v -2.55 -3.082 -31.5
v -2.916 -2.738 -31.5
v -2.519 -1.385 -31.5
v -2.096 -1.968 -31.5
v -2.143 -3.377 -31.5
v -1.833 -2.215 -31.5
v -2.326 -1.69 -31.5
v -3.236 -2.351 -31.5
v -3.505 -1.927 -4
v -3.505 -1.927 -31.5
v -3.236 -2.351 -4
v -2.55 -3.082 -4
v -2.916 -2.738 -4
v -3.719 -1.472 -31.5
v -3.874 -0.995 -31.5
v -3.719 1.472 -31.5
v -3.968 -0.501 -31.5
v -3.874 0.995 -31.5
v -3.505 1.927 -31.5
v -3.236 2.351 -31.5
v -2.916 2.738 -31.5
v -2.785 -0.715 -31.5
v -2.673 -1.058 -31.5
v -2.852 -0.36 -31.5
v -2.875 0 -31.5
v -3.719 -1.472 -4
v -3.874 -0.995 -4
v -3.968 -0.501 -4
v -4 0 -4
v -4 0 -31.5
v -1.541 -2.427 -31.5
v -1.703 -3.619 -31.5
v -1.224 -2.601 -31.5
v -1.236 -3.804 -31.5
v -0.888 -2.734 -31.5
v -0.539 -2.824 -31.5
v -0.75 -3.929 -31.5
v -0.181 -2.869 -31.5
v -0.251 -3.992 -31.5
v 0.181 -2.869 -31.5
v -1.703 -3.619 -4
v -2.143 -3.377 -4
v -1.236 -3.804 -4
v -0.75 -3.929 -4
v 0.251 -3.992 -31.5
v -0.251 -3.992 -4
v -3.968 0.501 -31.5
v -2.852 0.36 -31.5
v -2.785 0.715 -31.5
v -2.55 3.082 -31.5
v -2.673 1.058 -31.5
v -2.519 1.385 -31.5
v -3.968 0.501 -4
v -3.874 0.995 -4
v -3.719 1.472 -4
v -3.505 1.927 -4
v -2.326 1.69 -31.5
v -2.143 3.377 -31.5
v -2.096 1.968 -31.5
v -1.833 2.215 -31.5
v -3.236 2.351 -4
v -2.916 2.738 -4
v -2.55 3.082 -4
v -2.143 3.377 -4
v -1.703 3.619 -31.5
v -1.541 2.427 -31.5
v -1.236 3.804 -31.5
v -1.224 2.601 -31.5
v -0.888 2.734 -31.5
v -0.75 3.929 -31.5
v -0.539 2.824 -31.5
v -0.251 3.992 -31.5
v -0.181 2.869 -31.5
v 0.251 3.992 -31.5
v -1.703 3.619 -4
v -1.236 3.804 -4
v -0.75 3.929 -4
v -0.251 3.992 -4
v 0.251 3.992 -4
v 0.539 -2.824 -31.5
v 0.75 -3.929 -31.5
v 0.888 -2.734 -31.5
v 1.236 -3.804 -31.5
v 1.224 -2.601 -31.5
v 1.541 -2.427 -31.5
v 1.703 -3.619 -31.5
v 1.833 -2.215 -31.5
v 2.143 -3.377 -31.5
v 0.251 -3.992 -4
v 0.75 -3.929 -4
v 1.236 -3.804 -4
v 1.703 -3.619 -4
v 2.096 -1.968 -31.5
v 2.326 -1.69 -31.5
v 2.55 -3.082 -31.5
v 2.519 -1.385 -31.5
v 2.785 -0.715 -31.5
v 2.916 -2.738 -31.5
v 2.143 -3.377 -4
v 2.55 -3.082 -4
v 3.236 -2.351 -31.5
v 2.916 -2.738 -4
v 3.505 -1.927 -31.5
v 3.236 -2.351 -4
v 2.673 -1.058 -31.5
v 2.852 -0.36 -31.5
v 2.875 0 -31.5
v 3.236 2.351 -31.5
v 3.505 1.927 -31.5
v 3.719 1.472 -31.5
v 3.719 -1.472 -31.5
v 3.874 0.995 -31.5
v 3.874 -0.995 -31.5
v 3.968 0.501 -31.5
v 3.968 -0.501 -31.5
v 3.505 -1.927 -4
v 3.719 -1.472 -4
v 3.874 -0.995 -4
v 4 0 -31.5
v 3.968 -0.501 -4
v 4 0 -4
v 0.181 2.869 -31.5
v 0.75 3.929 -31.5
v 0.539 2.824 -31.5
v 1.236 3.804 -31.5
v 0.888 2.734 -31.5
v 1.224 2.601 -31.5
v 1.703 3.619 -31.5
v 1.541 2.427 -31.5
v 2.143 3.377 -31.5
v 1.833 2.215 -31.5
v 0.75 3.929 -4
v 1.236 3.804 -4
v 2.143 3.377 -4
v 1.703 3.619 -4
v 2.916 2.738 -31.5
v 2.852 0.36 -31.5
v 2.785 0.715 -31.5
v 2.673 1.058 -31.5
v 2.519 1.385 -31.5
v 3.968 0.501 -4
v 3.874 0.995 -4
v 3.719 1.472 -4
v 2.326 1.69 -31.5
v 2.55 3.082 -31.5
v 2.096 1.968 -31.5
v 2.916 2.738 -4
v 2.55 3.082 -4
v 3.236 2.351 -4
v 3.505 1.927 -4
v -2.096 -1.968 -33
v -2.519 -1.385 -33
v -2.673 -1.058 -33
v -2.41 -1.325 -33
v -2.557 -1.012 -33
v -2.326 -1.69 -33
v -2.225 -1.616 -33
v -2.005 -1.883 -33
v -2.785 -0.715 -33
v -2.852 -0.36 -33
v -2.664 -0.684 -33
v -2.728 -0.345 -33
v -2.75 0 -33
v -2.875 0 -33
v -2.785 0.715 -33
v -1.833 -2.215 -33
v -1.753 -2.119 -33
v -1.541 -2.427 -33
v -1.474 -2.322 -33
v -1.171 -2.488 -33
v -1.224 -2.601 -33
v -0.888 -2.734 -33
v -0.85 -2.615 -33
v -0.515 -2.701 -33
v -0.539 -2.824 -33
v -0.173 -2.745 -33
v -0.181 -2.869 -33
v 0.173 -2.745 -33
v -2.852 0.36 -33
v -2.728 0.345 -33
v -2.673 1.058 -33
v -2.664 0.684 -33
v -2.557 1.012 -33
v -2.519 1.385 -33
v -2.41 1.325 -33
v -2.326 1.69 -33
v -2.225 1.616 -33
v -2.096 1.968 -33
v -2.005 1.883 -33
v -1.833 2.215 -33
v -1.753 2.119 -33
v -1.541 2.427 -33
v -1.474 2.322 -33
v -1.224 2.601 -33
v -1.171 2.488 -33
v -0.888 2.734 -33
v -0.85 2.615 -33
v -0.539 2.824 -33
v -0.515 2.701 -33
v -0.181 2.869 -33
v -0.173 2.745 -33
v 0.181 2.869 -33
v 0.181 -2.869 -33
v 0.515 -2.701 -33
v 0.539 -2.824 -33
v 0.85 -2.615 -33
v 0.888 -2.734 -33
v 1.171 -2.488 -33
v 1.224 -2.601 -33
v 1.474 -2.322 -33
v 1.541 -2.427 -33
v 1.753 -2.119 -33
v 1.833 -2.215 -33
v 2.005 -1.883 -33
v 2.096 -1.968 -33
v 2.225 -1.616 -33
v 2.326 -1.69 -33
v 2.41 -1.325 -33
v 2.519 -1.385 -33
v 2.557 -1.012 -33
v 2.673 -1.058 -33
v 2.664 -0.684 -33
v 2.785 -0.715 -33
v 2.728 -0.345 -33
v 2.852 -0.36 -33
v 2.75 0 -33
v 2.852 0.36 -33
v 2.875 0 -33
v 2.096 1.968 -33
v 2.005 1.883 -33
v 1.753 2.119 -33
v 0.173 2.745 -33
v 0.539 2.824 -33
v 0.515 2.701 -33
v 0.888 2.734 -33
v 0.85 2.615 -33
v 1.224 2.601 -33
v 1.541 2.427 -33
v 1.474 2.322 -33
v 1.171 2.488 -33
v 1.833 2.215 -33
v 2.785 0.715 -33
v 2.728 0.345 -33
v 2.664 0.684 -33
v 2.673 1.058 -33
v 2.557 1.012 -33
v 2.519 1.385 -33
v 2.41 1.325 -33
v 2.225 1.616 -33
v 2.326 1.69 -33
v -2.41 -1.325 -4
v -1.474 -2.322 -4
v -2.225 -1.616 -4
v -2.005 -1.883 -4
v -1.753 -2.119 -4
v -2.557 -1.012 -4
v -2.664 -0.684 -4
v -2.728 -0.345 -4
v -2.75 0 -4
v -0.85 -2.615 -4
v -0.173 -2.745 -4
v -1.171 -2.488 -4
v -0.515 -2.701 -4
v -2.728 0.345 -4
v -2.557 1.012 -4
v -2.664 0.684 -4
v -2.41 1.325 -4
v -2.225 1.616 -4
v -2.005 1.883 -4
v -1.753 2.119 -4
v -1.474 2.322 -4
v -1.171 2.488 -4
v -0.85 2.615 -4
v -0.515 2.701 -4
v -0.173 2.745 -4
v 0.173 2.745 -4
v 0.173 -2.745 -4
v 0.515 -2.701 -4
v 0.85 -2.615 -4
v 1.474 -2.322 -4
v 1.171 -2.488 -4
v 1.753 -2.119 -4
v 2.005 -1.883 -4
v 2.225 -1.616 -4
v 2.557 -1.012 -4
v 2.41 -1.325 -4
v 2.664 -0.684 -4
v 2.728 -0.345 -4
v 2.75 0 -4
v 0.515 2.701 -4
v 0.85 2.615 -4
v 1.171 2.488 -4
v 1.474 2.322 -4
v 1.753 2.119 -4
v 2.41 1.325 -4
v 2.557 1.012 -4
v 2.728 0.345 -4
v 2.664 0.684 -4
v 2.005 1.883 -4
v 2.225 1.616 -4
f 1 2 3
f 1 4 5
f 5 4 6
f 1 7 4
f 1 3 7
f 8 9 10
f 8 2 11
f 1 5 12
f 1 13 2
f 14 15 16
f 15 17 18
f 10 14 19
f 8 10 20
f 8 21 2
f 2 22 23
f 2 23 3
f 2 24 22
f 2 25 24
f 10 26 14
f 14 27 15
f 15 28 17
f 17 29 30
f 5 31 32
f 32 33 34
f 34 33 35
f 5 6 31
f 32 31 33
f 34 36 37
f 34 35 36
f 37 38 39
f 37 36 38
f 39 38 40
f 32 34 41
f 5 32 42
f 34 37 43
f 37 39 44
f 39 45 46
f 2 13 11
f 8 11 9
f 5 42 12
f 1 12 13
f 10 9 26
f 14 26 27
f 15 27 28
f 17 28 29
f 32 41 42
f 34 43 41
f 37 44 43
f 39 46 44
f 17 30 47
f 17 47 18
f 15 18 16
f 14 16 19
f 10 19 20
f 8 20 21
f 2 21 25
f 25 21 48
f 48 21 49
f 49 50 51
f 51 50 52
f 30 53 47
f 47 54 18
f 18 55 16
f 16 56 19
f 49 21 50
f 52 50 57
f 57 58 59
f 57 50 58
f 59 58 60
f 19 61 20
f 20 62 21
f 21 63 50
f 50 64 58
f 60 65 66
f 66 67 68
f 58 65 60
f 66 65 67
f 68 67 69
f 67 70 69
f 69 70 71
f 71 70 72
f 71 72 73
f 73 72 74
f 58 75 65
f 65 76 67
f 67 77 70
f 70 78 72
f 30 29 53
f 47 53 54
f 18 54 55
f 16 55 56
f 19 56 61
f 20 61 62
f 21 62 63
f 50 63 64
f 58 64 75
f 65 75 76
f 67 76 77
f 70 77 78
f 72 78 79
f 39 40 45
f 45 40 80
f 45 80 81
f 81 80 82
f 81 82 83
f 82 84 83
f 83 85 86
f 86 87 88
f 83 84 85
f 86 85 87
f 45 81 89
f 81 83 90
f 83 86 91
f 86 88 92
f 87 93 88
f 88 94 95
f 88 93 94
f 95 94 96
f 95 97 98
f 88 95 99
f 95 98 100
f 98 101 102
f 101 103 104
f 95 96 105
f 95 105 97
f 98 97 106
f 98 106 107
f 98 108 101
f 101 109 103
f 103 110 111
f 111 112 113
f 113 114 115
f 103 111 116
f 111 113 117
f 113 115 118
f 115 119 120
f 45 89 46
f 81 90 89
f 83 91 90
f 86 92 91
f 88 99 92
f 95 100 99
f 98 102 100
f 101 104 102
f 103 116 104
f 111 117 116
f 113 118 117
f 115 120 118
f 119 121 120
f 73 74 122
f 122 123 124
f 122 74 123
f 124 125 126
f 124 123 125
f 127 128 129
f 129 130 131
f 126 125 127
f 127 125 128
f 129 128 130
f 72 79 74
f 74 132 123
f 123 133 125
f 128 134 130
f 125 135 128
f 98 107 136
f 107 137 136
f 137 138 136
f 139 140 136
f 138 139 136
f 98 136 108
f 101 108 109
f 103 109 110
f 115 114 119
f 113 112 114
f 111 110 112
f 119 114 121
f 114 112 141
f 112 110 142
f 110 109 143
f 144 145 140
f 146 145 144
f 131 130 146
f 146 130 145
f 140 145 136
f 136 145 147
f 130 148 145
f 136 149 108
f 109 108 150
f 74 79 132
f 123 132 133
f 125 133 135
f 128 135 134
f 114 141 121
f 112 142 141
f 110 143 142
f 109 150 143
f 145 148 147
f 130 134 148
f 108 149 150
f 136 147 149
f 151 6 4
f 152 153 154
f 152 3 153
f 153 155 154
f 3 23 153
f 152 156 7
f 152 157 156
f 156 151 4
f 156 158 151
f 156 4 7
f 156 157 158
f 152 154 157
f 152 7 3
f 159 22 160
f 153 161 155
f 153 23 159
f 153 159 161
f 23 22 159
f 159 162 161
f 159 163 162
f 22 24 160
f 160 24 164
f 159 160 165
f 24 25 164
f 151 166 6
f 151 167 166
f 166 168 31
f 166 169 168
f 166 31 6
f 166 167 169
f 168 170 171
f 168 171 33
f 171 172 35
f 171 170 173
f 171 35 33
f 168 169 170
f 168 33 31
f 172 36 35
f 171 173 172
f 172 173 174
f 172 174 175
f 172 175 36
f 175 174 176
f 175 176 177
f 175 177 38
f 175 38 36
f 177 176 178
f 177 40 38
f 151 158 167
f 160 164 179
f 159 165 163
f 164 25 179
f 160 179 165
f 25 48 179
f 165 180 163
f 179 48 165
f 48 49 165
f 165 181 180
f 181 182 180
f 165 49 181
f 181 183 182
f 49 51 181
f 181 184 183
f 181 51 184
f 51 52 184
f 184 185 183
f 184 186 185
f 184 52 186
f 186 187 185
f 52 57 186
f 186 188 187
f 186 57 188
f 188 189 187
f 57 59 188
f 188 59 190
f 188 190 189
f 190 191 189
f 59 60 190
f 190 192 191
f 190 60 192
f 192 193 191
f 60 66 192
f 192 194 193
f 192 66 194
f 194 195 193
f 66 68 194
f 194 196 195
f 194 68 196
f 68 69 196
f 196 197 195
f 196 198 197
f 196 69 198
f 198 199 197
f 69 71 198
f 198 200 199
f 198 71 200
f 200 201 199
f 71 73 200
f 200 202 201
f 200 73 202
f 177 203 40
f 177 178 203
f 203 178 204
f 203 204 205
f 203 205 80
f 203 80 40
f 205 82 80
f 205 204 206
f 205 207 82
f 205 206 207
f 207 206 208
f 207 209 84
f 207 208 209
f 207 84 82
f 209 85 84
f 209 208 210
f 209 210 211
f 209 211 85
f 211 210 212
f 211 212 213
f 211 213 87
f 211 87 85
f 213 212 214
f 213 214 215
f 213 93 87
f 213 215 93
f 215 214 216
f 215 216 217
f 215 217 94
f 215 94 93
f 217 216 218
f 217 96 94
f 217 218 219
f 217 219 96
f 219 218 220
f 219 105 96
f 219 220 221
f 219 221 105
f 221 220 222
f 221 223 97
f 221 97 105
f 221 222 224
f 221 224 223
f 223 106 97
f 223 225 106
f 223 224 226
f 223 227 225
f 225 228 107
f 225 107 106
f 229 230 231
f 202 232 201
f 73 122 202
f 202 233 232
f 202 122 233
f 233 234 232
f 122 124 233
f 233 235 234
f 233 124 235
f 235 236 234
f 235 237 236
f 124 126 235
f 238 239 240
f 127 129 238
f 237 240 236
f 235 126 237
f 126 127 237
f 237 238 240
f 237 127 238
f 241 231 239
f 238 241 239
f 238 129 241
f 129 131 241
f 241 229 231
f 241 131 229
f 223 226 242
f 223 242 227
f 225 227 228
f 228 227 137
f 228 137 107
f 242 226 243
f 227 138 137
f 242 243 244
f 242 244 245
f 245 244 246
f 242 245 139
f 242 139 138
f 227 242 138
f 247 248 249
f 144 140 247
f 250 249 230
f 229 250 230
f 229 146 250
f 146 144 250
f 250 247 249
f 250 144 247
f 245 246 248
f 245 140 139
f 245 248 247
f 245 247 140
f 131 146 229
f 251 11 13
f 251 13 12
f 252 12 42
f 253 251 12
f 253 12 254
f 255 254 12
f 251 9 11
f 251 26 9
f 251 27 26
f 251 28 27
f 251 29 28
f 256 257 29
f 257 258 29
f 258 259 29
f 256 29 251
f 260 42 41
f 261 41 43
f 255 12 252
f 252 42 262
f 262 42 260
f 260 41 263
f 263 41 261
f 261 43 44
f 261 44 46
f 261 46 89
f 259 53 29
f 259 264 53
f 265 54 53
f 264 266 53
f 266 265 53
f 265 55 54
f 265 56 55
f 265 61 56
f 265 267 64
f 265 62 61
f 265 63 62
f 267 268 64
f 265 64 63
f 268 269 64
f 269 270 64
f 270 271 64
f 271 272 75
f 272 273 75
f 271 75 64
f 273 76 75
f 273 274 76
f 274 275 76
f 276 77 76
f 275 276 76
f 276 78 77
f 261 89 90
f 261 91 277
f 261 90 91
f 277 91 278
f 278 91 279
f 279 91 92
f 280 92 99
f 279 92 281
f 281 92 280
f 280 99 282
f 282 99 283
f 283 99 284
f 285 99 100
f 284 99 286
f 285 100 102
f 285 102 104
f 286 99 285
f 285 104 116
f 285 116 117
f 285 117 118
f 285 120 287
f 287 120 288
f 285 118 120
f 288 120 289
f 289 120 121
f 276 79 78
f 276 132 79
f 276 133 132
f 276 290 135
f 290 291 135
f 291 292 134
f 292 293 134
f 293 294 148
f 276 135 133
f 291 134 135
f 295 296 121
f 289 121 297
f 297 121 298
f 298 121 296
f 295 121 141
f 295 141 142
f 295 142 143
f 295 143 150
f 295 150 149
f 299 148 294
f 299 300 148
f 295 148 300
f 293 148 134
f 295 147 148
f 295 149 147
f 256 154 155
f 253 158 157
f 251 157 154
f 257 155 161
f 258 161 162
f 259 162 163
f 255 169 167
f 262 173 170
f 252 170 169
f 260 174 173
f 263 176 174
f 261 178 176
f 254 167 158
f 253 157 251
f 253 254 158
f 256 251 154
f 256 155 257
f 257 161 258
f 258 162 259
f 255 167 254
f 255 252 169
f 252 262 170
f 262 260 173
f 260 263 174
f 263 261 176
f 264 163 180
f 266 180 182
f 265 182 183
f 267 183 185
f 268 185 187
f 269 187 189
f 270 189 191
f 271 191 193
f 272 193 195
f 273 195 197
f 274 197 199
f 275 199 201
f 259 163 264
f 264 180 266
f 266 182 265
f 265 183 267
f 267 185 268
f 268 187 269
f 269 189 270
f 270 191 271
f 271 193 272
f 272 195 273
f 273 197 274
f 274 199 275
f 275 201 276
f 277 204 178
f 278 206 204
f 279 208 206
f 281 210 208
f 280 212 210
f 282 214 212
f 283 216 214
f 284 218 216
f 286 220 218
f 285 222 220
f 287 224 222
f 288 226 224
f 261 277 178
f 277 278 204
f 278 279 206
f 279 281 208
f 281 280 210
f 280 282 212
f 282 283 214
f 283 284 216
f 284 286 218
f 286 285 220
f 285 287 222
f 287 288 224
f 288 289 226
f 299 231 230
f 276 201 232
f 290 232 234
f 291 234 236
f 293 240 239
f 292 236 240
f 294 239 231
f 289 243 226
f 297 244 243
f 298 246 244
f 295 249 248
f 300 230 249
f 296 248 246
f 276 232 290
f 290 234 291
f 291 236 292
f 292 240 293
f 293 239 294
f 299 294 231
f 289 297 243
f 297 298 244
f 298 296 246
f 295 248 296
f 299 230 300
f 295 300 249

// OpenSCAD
$fn = 50;

difference() {
	union() {
		translate(v = [0, 0, -31.5]) {
			cylinder(h = 31.5, r = 4.0);
		}
		#translate(v = [0, 0, -33.0]) {
			cylinder(h = 33, r = 2.875);
		}
	}
	union() {
		translate(v = [0, 0, 0]) {
			rotate(a = [0, 0, 0]) {
				difference() {
					union() {
						translate(v = [0, 0, -4]) {
							linear_extrude(height = 4) {
								polygon(points = [[4.8468, 0.0], [2.4234000000000004, 4.197451927062417], [-2.423399999999999, 4.197451927062417], [-4.8468, 5.935618106107392e-16], [-2.423400000000002, -4.197451927062416], [2.423399999999997, -4.197451927062419]]);
							}
						}
					}
					union();
				}
			}
		}
		#translate(v = [0, 0, -100.0]) {
			cylinder(h = 200, r = 2.75);
		}
	}
}
